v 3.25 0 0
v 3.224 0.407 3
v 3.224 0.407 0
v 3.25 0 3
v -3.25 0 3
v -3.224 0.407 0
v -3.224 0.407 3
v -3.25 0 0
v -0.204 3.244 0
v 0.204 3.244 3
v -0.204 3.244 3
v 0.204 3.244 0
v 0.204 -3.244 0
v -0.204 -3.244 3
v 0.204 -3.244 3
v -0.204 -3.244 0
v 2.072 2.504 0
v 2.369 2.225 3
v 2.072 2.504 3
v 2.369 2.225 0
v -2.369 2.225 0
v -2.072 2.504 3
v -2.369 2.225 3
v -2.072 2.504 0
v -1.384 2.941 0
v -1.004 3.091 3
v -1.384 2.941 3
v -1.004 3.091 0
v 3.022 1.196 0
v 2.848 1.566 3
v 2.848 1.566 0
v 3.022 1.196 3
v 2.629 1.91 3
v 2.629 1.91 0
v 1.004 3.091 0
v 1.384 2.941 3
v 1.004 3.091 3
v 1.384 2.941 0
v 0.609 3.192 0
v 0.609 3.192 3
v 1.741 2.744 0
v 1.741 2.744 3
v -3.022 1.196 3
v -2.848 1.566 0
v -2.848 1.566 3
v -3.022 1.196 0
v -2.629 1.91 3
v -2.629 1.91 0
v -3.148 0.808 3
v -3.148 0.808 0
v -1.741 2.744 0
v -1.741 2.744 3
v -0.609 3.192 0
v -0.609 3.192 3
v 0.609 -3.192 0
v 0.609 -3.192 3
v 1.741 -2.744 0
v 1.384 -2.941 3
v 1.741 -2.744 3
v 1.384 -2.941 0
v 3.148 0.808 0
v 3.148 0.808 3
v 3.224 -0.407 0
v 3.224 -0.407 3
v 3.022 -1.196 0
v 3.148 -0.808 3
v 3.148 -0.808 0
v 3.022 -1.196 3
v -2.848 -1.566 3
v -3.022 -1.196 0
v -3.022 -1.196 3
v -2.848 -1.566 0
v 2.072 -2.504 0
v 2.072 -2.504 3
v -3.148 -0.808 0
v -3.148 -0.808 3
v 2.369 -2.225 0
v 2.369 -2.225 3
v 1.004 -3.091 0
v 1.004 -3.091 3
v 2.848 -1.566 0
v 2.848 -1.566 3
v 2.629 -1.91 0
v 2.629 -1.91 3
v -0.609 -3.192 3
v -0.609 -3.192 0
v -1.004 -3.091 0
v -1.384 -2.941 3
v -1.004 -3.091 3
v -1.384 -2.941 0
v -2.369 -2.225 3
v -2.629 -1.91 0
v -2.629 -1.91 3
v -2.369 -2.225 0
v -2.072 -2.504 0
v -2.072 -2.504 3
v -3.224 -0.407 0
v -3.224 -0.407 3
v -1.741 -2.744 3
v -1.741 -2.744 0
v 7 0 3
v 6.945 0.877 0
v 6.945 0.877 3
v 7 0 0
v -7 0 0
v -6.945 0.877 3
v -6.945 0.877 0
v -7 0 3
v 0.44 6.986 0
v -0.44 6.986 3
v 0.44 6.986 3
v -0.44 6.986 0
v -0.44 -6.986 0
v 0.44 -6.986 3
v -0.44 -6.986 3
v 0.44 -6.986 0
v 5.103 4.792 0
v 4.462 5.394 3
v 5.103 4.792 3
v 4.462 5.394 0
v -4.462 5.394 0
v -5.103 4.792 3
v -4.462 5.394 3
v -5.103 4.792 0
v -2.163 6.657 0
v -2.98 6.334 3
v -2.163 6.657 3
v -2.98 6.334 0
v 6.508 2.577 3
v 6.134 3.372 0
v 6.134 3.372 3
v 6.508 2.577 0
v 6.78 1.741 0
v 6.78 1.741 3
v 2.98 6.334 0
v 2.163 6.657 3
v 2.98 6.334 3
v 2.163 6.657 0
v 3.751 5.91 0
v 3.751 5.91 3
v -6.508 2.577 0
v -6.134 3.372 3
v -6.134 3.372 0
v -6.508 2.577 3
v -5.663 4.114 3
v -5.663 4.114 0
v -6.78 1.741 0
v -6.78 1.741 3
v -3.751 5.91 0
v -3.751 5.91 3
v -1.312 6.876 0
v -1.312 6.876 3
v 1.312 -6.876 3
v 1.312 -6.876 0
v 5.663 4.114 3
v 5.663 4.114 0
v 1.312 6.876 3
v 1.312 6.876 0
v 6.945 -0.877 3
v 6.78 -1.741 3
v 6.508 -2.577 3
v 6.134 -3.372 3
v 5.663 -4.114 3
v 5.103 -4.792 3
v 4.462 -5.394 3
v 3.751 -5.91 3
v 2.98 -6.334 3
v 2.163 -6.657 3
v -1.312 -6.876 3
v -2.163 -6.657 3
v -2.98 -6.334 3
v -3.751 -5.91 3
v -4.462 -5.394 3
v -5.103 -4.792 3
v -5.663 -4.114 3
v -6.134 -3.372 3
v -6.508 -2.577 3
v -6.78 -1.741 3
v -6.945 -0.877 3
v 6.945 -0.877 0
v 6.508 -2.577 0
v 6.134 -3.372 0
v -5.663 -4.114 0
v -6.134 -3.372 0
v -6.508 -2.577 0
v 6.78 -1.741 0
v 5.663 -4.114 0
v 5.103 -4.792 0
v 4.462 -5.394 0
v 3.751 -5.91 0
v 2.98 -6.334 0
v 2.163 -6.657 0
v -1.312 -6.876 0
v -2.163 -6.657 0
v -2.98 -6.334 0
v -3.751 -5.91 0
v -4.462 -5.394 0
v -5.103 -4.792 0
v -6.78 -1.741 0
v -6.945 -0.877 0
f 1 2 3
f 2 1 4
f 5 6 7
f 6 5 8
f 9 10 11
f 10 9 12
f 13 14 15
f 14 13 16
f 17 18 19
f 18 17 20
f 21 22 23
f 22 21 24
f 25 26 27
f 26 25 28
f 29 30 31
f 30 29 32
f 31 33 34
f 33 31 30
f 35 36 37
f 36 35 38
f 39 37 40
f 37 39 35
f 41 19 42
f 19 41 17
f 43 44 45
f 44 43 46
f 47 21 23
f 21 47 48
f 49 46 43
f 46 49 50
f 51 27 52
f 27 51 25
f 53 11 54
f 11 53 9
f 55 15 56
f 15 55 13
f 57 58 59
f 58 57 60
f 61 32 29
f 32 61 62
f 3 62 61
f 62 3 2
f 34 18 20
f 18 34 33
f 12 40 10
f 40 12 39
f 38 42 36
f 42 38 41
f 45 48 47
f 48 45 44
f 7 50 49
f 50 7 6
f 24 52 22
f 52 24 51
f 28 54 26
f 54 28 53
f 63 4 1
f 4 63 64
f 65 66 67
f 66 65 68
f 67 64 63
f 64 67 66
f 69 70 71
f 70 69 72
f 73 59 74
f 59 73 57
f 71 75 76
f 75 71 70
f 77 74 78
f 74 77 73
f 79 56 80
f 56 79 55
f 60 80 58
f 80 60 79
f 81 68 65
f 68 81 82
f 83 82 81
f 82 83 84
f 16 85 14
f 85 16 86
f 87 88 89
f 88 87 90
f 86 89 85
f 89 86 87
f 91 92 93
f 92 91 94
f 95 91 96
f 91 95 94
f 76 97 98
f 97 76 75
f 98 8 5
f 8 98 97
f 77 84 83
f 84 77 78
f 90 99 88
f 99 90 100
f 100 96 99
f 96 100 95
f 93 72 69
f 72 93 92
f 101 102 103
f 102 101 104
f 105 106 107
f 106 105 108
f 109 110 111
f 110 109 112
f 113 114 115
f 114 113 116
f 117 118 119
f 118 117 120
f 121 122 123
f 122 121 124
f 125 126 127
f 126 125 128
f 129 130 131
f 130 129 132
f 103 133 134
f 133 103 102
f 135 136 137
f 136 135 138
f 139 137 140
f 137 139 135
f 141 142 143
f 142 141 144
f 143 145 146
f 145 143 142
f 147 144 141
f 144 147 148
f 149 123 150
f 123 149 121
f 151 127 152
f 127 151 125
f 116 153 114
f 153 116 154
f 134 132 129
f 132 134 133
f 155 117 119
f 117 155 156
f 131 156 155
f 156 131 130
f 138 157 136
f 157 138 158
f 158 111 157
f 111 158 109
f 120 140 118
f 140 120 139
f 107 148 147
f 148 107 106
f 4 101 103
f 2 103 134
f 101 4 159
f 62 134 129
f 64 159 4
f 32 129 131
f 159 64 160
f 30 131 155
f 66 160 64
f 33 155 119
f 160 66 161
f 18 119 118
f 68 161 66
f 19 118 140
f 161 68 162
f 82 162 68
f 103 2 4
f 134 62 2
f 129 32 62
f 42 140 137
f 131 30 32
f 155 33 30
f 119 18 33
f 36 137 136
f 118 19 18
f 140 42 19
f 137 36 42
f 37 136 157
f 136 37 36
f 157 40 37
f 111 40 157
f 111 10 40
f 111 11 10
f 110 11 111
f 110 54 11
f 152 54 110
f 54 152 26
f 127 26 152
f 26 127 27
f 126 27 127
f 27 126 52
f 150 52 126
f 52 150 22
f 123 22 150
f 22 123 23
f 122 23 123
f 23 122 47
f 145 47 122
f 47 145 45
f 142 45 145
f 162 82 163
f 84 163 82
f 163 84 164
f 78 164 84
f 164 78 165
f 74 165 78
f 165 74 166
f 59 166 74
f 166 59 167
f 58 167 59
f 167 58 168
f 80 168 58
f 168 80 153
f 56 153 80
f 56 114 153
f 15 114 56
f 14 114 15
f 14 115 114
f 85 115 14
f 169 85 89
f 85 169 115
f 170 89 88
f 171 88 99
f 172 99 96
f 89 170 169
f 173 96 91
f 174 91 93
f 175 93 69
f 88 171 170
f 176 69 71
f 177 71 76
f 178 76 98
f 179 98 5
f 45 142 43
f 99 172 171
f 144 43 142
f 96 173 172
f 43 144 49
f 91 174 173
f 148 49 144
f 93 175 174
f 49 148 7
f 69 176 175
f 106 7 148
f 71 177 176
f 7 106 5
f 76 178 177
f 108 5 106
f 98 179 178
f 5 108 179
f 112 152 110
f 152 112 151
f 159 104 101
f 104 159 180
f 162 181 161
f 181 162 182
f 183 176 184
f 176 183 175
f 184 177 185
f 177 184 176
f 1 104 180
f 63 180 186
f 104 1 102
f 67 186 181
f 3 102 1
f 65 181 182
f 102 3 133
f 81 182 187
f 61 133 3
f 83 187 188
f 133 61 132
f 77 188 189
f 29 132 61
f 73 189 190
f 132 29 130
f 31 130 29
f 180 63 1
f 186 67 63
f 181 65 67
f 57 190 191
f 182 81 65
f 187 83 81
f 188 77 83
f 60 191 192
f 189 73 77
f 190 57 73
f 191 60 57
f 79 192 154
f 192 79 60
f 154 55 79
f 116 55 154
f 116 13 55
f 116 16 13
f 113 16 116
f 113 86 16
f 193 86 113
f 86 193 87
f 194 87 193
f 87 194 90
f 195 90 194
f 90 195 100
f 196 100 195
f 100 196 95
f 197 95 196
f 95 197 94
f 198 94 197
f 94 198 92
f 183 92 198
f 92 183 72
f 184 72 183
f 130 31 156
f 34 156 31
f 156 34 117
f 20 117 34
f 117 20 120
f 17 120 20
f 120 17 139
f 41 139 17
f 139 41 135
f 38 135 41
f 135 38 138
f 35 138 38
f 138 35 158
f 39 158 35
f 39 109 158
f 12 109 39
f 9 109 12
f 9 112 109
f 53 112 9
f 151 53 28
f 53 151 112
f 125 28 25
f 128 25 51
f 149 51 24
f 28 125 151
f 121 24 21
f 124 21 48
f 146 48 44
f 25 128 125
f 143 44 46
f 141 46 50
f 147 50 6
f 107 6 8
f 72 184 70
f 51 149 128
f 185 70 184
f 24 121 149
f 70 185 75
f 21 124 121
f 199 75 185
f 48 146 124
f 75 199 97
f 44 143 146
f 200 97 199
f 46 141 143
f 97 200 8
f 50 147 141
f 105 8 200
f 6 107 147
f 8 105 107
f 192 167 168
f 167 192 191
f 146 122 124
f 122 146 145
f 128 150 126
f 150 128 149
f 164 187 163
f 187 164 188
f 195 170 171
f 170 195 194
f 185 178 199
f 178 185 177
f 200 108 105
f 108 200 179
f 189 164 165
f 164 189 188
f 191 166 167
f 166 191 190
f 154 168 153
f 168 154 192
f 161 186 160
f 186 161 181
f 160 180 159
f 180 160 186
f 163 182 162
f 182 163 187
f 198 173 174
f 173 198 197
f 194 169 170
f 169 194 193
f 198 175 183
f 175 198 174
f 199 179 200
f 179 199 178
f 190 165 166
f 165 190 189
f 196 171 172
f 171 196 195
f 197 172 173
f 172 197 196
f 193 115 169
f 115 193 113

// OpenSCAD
$fn = 50;


difference() {
	union() {
		translate(v = [0, 0, 0]) {
			rotate(a = [0, 0, 0]) {
				cylinder(h = 3, r = 7.0000000000);
			}
		}
	}
	union() {
		translate(v = [0.0000000000, 0.0000000000, 0]) {
			rotate(a = [0, 0, 0]) {
				translate(v = [0, 0, -50]) {
					rotate(a = [0, 0, 0]) {
						cylinder(h = 100, r = 3.2500000000);
					}
				}
			}
		}
	}
}
